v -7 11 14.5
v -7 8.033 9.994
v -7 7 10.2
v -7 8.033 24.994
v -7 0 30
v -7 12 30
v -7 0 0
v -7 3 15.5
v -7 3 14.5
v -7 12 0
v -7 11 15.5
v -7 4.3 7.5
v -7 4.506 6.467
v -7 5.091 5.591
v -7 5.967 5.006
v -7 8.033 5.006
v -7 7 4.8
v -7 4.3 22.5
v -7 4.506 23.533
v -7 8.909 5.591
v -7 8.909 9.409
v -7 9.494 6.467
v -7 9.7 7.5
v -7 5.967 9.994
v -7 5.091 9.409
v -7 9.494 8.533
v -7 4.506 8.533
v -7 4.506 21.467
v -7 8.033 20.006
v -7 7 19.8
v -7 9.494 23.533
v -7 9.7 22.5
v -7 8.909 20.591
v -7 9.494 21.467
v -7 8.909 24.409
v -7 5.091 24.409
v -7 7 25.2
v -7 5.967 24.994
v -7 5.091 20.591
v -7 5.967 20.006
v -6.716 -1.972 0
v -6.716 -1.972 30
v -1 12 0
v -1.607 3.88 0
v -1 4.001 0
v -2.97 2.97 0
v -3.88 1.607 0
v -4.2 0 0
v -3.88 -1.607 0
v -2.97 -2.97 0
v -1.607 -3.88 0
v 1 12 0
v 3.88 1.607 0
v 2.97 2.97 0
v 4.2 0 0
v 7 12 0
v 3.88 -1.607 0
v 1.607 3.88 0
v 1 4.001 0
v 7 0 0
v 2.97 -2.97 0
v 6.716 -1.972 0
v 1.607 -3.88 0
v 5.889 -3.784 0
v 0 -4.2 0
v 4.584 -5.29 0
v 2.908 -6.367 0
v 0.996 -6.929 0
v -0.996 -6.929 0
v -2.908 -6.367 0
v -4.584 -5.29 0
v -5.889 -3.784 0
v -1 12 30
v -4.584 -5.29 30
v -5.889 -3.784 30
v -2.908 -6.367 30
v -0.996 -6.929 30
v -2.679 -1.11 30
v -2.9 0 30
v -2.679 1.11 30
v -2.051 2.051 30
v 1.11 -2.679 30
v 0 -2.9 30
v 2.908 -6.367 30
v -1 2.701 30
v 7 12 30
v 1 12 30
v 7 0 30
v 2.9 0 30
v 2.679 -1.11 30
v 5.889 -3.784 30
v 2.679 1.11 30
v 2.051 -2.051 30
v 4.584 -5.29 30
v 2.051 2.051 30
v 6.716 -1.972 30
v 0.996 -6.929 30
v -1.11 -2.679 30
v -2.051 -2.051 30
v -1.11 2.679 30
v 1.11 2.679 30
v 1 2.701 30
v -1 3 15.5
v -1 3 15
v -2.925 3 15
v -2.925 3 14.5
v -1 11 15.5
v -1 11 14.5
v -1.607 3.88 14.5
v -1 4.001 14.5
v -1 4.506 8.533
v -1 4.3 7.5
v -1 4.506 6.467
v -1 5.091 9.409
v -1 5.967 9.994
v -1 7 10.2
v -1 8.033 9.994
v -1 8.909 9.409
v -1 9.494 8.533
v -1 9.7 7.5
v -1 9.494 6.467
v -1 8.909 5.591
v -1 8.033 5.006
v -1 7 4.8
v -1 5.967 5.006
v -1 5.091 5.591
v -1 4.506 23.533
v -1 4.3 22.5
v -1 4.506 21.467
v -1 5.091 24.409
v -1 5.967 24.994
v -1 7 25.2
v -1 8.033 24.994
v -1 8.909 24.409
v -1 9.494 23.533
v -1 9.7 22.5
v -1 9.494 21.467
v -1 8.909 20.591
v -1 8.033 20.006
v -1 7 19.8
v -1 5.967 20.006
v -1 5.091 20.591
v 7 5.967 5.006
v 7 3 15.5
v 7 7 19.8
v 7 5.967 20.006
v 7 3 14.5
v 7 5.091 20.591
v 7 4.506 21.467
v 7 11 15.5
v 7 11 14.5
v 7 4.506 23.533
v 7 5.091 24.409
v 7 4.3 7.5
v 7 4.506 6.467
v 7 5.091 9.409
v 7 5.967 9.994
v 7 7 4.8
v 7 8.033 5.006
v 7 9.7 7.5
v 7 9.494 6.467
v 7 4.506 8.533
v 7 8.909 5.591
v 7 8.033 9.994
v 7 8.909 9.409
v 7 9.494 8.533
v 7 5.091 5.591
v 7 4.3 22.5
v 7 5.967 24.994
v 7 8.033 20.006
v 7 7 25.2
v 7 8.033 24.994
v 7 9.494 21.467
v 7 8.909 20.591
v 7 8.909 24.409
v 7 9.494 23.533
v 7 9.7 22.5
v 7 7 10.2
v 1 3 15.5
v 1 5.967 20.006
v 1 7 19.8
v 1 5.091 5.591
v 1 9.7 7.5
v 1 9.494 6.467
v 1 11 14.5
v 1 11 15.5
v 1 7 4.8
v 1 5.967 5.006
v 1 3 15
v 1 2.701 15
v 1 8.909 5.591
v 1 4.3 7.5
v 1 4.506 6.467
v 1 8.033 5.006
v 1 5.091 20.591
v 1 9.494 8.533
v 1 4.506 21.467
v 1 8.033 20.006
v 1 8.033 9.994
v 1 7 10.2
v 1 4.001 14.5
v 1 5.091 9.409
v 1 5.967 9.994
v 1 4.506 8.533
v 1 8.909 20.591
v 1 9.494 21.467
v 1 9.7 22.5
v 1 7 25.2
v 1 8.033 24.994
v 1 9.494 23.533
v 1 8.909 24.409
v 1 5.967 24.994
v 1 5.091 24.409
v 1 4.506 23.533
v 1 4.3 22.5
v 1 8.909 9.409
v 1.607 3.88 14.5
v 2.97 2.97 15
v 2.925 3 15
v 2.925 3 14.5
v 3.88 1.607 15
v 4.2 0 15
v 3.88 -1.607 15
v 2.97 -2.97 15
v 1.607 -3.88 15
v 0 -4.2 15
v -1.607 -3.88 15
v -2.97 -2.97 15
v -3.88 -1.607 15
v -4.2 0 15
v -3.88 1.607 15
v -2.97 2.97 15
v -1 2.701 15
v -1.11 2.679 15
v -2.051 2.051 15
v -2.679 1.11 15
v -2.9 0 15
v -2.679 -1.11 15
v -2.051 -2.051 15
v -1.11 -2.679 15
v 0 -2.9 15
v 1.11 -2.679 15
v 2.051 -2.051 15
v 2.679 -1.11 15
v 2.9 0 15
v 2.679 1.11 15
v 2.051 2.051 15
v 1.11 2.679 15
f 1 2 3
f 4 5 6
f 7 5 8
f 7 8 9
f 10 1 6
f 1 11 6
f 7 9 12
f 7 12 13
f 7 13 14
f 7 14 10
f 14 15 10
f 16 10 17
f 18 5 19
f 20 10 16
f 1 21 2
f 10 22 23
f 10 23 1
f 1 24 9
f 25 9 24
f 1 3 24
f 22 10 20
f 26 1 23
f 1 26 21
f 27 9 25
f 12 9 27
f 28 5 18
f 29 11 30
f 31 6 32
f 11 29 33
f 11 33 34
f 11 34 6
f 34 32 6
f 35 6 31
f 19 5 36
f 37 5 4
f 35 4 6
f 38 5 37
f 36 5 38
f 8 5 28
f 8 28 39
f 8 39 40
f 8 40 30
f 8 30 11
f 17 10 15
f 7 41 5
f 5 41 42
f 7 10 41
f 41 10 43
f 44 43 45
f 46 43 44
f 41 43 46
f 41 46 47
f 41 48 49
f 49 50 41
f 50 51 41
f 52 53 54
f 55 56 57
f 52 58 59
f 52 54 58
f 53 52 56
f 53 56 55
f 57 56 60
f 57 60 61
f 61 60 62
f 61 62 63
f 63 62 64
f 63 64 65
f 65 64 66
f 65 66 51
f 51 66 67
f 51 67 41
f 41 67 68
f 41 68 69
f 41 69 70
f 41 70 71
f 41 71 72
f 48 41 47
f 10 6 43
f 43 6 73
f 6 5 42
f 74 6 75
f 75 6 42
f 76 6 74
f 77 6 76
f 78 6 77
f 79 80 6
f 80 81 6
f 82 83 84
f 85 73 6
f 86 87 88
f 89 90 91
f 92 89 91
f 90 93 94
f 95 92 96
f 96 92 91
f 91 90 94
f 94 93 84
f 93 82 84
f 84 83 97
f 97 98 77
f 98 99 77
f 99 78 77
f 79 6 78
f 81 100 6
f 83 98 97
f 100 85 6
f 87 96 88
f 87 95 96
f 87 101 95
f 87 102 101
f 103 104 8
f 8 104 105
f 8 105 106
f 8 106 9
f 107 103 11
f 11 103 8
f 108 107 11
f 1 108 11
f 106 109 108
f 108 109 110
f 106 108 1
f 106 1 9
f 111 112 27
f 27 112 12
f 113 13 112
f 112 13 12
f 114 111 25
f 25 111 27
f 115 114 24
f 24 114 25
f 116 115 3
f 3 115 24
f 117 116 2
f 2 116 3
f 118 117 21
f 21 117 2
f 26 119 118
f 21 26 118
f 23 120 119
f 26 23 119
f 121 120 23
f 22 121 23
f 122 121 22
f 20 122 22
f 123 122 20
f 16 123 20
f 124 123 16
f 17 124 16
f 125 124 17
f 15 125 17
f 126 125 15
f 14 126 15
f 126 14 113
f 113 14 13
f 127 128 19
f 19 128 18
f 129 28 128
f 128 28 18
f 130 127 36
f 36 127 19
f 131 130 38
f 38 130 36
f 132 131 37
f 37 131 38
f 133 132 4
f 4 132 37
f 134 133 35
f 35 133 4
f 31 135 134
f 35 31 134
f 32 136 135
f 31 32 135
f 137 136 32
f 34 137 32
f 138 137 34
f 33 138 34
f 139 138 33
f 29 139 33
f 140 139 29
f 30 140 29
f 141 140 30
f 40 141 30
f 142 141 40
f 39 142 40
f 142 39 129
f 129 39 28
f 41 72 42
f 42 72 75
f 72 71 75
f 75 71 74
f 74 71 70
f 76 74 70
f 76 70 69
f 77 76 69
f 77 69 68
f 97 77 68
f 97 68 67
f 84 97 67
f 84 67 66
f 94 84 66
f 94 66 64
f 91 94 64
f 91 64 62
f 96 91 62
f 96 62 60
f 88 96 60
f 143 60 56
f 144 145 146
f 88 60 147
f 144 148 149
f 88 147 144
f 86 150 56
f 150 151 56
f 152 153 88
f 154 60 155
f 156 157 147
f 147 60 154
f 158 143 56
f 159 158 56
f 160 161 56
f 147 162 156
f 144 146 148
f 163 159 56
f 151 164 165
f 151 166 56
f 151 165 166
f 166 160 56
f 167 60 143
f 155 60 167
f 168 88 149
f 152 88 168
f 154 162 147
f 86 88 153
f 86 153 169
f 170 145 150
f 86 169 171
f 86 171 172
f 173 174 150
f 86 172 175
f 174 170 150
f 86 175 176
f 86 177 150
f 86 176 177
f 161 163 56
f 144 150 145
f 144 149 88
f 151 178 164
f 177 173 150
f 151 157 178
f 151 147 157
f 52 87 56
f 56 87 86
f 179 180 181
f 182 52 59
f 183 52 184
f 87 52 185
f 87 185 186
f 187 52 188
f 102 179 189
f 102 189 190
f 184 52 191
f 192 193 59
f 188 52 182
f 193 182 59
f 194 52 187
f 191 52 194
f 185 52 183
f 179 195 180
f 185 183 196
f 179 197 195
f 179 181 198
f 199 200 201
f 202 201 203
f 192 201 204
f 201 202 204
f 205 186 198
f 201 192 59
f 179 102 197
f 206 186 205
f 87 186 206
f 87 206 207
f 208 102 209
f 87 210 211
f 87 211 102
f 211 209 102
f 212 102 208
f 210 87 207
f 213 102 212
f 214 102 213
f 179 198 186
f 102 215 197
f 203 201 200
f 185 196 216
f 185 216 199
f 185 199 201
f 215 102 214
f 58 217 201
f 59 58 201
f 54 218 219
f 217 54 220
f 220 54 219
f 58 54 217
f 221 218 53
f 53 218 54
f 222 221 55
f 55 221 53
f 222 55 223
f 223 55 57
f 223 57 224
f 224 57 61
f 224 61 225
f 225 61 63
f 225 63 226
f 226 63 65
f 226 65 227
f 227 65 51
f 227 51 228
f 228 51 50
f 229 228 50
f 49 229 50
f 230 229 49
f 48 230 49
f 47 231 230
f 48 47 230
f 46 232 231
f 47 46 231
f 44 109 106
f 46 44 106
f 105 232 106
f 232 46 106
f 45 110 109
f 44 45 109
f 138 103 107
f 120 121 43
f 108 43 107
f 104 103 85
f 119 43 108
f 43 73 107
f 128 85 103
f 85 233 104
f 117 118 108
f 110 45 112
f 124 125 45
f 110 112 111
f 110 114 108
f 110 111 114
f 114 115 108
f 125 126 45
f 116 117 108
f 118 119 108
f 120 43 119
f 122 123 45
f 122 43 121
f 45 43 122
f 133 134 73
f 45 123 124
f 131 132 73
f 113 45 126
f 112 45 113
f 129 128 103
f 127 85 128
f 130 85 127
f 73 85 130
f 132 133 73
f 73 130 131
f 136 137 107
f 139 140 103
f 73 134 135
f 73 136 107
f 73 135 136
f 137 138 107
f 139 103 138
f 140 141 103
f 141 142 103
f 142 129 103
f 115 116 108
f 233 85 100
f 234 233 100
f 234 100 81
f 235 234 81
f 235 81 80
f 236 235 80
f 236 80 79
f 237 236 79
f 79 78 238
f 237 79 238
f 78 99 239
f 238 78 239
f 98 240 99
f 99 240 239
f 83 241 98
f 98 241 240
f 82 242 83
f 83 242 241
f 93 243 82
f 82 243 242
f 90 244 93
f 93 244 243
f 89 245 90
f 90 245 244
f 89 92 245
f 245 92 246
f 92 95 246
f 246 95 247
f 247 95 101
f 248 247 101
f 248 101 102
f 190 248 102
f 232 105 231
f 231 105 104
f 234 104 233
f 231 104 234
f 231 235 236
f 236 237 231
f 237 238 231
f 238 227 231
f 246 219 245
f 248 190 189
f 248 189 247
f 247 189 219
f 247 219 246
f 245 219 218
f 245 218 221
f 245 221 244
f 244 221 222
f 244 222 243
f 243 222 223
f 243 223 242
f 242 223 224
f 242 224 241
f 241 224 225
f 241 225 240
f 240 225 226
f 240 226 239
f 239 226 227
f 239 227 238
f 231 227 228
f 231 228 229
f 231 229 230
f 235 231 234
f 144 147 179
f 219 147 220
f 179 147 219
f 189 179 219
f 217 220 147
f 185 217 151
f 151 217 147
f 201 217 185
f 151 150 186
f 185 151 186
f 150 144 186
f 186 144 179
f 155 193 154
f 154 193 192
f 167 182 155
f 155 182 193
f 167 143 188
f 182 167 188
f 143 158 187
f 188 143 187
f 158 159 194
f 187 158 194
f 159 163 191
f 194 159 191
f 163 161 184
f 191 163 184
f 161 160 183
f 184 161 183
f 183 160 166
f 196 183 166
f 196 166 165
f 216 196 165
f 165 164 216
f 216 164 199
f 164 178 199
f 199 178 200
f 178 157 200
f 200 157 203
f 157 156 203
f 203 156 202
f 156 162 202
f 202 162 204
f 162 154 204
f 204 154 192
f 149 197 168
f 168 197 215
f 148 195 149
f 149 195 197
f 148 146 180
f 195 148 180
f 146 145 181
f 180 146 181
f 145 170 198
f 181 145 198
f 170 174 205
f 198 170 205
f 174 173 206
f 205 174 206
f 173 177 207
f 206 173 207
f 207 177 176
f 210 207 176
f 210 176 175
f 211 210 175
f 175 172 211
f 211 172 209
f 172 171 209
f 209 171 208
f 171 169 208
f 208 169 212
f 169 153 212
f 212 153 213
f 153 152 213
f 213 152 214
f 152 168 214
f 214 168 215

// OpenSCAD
// file: configuration.scad
// PRUSA Mendel  
// Configuration file
// GNU GPL v2
// Josef Průša
// josefprusa@me.com
// prusadjs.cz
// http://www.reprap.org/wiki/Prusa_Mendel
// http://github.com/prusajr/PrusaMendel

// M8 rod diameter
m8_diameter = 8.4;

// M8 nut diameter diameter
// Used for $fn nut trick -> cylinder(h = 5, r=4.5, $fn=6, center=true);
m8_nut_diameter = 16.4;

// M4 rod/screw diameter
m4_diameter = 5;

// M4 nut diameter
// Used for $fn nut trick -> cylinder(h = 5, r=4.5, $fn=6, center=true);
m4_nut_diameter = 9;

// M3 rod/screw diameter
m3_diameter = 4.4;

// M3 nut diameter diameter
// Used for $fn nut trick -> cylinder(h = 5, r=4.5, $fn=6, center=true);
m3_nut_diameter = 7;

// Bushing holders diameter
bushing_diameter = 11;

//Motor shaft diameter
motor_shaft=5;
// main file
// PRUSA Mendel  
// motor/leadscrew coupling
// Used for connecting motor to leadscrew
// GNU GPL v2
// Josef Průša
// josefprusa@me.com
// prusadjs.cz
// http://www.reprap.org/wiki/Prusa_Mendel
// http://github.com/prusajr/PrusaMendel
include <configuration.scad>
module coupling(){
difference(){
union(){
	cylinder(h = 30, r=7);
	translate(v = [0, 6, 15]) cube(size = [14,12,30], center = true);
}

// inside diameter
translate(v = [0, 0, -1])cylinder(h = 16, r=m8_diameter/2, $fn=16);
translate(v = [0, 0, 14.5])cylinder(h = 16, r=motor_shaft/2+0.4, $fn=16);

// screw holes
rotate ([0,0,90]) translate(v = [7, 15, 7.5]) rotate ([90,0,0]) cylinder(h = 30, r=2.7, $fn=16);
rotate ([0,0,90]) translate(v = [7, 15, 22.5]) rotate ([90,0,0]) cylinder(h = 30, r=2.7, $fn=16);

//main cut
translate(v = [0, 10, 14]) cube(size = [2,20,35], center = true);

//difference cut
translate(v = [0, 7, 15])  cube(size = [20,8,1], center = true);
}
}
coupling();
